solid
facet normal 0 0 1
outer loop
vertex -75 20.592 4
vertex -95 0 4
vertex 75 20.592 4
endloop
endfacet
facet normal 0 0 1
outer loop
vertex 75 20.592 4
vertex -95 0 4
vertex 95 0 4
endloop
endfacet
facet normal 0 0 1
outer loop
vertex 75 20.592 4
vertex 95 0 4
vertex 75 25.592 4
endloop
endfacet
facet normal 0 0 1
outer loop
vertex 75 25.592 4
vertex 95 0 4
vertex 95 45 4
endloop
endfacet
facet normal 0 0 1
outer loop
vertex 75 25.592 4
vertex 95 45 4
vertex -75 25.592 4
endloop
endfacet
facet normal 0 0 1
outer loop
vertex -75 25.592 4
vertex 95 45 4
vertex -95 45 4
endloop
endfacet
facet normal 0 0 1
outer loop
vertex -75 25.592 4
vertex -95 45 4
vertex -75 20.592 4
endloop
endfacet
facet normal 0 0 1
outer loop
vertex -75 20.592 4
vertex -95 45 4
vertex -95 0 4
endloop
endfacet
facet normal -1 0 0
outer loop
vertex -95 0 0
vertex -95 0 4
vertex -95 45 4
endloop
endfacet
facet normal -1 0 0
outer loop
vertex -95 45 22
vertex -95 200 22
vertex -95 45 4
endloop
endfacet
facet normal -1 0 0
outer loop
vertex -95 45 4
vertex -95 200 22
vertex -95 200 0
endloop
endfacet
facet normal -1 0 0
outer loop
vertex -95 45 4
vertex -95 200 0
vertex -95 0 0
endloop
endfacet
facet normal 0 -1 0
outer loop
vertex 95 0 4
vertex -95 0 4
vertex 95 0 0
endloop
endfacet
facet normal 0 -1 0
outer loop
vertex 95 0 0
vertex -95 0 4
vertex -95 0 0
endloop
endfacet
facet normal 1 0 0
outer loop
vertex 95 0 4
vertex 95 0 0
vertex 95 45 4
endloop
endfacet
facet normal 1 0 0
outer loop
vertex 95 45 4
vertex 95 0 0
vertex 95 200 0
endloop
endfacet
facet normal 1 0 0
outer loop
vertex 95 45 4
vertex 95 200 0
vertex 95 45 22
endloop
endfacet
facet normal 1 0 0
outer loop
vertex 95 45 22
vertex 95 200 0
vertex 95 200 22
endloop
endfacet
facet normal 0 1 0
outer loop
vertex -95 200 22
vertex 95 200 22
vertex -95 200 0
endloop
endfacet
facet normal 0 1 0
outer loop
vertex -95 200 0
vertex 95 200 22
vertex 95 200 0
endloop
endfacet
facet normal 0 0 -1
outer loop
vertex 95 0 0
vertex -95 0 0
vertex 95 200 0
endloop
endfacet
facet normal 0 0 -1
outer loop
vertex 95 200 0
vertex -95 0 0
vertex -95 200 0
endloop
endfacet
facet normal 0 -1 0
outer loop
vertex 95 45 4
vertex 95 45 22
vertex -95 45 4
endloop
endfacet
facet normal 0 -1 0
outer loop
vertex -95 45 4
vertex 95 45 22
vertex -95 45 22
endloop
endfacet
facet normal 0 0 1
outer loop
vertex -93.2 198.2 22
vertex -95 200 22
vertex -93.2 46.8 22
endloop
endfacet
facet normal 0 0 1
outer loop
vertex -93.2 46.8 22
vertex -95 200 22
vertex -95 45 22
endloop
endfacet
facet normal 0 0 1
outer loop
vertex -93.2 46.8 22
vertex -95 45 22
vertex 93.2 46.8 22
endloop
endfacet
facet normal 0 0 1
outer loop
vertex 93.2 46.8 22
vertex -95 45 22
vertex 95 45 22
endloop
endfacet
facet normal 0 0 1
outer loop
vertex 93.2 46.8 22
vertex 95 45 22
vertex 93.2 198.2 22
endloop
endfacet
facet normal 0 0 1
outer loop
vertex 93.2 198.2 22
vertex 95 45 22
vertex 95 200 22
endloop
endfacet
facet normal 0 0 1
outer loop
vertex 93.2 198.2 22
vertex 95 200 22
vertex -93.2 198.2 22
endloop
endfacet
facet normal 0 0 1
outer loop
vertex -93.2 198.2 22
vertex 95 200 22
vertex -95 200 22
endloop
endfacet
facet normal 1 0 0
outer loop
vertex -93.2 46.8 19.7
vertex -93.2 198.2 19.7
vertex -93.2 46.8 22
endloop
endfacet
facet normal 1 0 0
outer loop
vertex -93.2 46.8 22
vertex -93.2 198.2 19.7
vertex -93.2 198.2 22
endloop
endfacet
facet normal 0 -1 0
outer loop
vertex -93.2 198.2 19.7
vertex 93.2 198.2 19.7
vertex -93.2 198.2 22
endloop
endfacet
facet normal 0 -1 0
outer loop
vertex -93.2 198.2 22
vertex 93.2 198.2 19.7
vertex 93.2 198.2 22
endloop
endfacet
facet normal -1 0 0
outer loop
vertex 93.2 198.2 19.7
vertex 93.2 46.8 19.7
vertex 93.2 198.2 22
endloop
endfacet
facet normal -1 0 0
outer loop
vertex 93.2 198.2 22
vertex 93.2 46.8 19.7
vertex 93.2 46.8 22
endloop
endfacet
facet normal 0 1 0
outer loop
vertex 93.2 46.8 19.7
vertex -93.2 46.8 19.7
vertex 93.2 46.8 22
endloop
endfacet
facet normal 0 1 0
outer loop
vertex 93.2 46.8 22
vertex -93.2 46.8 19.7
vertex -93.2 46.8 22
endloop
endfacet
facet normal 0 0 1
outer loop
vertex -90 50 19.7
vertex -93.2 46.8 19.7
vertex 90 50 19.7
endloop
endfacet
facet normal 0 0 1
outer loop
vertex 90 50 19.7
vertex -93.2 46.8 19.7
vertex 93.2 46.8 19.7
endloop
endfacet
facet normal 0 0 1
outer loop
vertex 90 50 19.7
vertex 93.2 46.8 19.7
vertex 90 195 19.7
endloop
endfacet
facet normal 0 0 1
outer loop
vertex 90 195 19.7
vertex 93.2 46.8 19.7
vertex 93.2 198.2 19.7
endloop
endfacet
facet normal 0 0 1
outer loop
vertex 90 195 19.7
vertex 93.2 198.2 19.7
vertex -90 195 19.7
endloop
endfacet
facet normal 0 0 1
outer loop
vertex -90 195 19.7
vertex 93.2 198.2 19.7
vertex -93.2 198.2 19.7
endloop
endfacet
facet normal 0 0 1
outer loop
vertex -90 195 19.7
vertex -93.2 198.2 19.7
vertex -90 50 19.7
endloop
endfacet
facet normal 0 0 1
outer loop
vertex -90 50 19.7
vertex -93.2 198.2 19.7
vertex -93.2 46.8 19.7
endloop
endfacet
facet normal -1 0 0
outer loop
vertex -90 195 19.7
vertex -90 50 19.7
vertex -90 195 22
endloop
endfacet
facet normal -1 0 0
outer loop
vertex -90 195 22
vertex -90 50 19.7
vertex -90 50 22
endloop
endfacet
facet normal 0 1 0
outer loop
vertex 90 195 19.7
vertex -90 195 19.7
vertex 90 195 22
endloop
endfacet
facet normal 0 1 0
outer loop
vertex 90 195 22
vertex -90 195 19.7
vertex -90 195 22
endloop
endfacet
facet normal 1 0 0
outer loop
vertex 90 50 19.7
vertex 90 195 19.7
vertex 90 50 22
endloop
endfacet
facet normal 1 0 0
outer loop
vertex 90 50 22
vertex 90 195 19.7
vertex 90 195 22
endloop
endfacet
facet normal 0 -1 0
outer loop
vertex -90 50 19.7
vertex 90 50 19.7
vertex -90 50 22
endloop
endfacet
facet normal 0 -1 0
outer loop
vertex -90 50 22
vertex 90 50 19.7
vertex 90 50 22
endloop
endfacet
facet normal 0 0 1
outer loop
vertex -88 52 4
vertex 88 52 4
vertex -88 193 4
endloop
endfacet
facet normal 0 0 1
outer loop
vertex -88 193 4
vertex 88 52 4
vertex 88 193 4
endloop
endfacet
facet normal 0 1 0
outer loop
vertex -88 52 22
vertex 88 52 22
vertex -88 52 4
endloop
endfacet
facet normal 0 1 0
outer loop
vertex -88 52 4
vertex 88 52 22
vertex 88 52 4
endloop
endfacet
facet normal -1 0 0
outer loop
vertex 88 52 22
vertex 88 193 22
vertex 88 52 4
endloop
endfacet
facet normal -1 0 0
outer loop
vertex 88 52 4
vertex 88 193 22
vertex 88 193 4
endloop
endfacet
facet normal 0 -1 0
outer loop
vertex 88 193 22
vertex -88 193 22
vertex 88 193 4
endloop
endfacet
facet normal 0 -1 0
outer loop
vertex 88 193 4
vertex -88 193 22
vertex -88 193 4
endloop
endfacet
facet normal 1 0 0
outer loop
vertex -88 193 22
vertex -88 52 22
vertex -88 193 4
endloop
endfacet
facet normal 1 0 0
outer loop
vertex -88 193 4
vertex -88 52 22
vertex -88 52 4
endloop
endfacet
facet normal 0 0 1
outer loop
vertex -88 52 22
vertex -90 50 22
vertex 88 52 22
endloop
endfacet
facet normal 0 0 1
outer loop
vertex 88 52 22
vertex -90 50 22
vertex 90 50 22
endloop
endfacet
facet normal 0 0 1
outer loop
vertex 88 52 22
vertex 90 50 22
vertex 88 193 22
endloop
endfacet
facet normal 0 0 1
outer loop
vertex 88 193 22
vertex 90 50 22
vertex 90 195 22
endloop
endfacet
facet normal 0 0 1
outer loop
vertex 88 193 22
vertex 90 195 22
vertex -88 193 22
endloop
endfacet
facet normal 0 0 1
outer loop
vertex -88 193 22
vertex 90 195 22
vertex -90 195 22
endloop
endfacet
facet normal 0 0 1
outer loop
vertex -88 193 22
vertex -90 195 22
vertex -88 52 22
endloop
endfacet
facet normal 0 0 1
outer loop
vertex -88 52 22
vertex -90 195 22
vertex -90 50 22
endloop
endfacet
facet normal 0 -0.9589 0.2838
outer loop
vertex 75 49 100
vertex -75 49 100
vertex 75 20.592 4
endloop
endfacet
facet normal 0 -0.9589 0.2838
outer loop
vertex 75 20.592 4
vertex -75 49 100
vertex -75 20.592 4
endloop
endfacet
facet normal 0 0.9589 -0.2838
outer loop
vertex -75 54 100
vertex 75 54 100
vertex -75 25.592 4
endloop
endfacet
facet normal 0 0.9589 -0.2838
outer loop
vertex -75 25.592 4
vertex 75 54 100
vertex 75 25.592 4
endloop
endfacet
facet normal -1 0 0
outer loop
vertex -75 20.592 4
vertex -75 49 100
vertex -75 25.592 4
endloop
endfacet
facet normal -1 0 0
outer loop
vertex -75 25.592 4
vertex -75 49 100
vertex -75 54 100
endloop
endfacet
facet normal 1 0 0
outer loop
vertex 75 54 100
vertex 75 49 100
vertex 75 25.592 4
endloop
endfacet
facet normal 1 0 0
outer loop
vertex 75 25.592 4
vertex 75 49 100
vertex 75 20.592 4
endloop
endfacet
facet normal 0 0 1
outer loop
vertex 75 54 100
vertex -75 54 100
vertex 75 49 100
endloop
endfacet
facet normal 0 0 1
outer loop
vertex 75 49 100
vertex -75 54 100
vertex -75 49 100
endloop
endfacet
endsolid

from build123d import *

# Parameters (mm, degrees)
F_190_X_200_TRAY_FLOOR_SKETCH_W                  = 190
F_190_X_200_TRAY_FLOOR_SKETCH_H                  = 200
F_4_MM_TRAY_FLOOR_DEPTH                          = 4
ELECTRONICS_COMPARTMENT_WALL_SKETCH_W            = 190
ELECTRONICS_COMPARTMENT_WALL_SKETCH_H            = 155
ELECTRONICS_COMPARTMENT_WALL_SKETCH_W_2          = 176
ELECTRONICS_COMPARTMENT_WALL_SKETCH_H_2          = 141
F_22_MM_PERIMETER_WALLS_DEPTH                    = 22
F_3_2_START                                      = 22
F_3_MM_CORD_GASKET_GROOVE_SKETCH_W               = 186.4
F_3_MM_CORD_GASKET_GROOVE_SKETCH_H               = 151.4
F_3_MM_CORD_GASKET_GROOVE_SKETCH_W_2             = 180
F_3_MM_CORD_GASKET_GROOVE_SKETCH_H_2             = 145
F_3_2_X_2_3_MM_PERIMETER_GASKET_GROOVE_DEPTH     = 2.3
F_150_MM_WIDE_ANGLED_DISPLAY_BULKHEAD_DEPTH      = 75
F_150_MM_WIDE_ANGLED_DISPLAY_BULKHEAD_DEPTH_BACK = 75


with BuildPart() as part:
    # 190 x 200 Tray Floor Sketch → 4 mm Tray Floor (new body)
    with BuildSketch(Plane.XY):
        with Locations((0, 100)):
            Rectangle(F_190_X_200_TRAY_FLOOR_SKETCH_W, F_190_X_200_TRAY_FLOOR_SKETCH_H)
    extrude(amount=F_4_MM_TRAY_FLOOR_DEPTH)

    # Electronics Compartment Wall Sketch → 22 mm Perimeter Walls (add)
    with BuildSketch(Plane.XY):
        with Locations((0, 122.5)):
            Rectangle(ELECTRONICS_COMPARTMENT_WALL_SKETCH_W, ELECTRONICS_COMPARTMENT_WALL_SKETCH_H)
        with Locations((0, 122.5)):
            Rectangle(ELECTRONICS_COMPARTMENT_WALL_SKETCH_W_2, ELECTRONICS_COMPARTMENT_WALL_SKETCH_H_2, mode=Mode.SUBTRACT)
    extrude(amount=F_22_MM_PERIMETER_WALLS_DEPTH)

    # 3 mm Cord Gasket Groove Sketch → 3.2 x 2.3 mm Perimeter Gasket Groove (cut)
    with BuildSketch(Plane.XY.offset(F_3_2_START)):
        with Locations((0, 122.5)):
            Rectangle(F_3_MM_CORD_GASKET_GROOVE_SKETCH_W, F_3_MM_CORD_GASKET_GROOVE_SKETCH_H)
        with Locations((0, 122.5)):
            Rectangle(F_3_MM_CORD_GASKET_GROOVE_SKETCH_W_2, F_3_MM_CORD_GASKET_GROOVE_SKETCH_H_2, mode=Mode.SUBTRACT)
    extrude(amount=-F_3_2_X_2_3_MM_PERIMETER_GASKET_GROOVE_DEPTH, mode=Mode.SUBTRACT)

    # Angled Display Bulkhead Side Profile → 150 mm Wide Angled Display Bulkhead (add, two sides: drawn at the far end of the back side and taken through both)
    with BuildSketch(Plane(origin=(0, 0, 0), x_dir=(0, 0, -1), z_dir=(1, 0, 0)).offset(-F_150_MM_WIDE_ANGLED_DISPLAY_BULKHEAD_DEPTH_BACK)):
        Polygon((-2, 20), (-2, 25), (-100, 54), (-100, 49), align=None)
    extrude(amount=F_150_MM_WIDE_ANGLED_DISPLAY_BULKHEAD_DEPTH + F_150_MM_WIDE_ANGLED_DISPLAY_BULKHEAD_DEPTH_BACK)


solid = part.part
